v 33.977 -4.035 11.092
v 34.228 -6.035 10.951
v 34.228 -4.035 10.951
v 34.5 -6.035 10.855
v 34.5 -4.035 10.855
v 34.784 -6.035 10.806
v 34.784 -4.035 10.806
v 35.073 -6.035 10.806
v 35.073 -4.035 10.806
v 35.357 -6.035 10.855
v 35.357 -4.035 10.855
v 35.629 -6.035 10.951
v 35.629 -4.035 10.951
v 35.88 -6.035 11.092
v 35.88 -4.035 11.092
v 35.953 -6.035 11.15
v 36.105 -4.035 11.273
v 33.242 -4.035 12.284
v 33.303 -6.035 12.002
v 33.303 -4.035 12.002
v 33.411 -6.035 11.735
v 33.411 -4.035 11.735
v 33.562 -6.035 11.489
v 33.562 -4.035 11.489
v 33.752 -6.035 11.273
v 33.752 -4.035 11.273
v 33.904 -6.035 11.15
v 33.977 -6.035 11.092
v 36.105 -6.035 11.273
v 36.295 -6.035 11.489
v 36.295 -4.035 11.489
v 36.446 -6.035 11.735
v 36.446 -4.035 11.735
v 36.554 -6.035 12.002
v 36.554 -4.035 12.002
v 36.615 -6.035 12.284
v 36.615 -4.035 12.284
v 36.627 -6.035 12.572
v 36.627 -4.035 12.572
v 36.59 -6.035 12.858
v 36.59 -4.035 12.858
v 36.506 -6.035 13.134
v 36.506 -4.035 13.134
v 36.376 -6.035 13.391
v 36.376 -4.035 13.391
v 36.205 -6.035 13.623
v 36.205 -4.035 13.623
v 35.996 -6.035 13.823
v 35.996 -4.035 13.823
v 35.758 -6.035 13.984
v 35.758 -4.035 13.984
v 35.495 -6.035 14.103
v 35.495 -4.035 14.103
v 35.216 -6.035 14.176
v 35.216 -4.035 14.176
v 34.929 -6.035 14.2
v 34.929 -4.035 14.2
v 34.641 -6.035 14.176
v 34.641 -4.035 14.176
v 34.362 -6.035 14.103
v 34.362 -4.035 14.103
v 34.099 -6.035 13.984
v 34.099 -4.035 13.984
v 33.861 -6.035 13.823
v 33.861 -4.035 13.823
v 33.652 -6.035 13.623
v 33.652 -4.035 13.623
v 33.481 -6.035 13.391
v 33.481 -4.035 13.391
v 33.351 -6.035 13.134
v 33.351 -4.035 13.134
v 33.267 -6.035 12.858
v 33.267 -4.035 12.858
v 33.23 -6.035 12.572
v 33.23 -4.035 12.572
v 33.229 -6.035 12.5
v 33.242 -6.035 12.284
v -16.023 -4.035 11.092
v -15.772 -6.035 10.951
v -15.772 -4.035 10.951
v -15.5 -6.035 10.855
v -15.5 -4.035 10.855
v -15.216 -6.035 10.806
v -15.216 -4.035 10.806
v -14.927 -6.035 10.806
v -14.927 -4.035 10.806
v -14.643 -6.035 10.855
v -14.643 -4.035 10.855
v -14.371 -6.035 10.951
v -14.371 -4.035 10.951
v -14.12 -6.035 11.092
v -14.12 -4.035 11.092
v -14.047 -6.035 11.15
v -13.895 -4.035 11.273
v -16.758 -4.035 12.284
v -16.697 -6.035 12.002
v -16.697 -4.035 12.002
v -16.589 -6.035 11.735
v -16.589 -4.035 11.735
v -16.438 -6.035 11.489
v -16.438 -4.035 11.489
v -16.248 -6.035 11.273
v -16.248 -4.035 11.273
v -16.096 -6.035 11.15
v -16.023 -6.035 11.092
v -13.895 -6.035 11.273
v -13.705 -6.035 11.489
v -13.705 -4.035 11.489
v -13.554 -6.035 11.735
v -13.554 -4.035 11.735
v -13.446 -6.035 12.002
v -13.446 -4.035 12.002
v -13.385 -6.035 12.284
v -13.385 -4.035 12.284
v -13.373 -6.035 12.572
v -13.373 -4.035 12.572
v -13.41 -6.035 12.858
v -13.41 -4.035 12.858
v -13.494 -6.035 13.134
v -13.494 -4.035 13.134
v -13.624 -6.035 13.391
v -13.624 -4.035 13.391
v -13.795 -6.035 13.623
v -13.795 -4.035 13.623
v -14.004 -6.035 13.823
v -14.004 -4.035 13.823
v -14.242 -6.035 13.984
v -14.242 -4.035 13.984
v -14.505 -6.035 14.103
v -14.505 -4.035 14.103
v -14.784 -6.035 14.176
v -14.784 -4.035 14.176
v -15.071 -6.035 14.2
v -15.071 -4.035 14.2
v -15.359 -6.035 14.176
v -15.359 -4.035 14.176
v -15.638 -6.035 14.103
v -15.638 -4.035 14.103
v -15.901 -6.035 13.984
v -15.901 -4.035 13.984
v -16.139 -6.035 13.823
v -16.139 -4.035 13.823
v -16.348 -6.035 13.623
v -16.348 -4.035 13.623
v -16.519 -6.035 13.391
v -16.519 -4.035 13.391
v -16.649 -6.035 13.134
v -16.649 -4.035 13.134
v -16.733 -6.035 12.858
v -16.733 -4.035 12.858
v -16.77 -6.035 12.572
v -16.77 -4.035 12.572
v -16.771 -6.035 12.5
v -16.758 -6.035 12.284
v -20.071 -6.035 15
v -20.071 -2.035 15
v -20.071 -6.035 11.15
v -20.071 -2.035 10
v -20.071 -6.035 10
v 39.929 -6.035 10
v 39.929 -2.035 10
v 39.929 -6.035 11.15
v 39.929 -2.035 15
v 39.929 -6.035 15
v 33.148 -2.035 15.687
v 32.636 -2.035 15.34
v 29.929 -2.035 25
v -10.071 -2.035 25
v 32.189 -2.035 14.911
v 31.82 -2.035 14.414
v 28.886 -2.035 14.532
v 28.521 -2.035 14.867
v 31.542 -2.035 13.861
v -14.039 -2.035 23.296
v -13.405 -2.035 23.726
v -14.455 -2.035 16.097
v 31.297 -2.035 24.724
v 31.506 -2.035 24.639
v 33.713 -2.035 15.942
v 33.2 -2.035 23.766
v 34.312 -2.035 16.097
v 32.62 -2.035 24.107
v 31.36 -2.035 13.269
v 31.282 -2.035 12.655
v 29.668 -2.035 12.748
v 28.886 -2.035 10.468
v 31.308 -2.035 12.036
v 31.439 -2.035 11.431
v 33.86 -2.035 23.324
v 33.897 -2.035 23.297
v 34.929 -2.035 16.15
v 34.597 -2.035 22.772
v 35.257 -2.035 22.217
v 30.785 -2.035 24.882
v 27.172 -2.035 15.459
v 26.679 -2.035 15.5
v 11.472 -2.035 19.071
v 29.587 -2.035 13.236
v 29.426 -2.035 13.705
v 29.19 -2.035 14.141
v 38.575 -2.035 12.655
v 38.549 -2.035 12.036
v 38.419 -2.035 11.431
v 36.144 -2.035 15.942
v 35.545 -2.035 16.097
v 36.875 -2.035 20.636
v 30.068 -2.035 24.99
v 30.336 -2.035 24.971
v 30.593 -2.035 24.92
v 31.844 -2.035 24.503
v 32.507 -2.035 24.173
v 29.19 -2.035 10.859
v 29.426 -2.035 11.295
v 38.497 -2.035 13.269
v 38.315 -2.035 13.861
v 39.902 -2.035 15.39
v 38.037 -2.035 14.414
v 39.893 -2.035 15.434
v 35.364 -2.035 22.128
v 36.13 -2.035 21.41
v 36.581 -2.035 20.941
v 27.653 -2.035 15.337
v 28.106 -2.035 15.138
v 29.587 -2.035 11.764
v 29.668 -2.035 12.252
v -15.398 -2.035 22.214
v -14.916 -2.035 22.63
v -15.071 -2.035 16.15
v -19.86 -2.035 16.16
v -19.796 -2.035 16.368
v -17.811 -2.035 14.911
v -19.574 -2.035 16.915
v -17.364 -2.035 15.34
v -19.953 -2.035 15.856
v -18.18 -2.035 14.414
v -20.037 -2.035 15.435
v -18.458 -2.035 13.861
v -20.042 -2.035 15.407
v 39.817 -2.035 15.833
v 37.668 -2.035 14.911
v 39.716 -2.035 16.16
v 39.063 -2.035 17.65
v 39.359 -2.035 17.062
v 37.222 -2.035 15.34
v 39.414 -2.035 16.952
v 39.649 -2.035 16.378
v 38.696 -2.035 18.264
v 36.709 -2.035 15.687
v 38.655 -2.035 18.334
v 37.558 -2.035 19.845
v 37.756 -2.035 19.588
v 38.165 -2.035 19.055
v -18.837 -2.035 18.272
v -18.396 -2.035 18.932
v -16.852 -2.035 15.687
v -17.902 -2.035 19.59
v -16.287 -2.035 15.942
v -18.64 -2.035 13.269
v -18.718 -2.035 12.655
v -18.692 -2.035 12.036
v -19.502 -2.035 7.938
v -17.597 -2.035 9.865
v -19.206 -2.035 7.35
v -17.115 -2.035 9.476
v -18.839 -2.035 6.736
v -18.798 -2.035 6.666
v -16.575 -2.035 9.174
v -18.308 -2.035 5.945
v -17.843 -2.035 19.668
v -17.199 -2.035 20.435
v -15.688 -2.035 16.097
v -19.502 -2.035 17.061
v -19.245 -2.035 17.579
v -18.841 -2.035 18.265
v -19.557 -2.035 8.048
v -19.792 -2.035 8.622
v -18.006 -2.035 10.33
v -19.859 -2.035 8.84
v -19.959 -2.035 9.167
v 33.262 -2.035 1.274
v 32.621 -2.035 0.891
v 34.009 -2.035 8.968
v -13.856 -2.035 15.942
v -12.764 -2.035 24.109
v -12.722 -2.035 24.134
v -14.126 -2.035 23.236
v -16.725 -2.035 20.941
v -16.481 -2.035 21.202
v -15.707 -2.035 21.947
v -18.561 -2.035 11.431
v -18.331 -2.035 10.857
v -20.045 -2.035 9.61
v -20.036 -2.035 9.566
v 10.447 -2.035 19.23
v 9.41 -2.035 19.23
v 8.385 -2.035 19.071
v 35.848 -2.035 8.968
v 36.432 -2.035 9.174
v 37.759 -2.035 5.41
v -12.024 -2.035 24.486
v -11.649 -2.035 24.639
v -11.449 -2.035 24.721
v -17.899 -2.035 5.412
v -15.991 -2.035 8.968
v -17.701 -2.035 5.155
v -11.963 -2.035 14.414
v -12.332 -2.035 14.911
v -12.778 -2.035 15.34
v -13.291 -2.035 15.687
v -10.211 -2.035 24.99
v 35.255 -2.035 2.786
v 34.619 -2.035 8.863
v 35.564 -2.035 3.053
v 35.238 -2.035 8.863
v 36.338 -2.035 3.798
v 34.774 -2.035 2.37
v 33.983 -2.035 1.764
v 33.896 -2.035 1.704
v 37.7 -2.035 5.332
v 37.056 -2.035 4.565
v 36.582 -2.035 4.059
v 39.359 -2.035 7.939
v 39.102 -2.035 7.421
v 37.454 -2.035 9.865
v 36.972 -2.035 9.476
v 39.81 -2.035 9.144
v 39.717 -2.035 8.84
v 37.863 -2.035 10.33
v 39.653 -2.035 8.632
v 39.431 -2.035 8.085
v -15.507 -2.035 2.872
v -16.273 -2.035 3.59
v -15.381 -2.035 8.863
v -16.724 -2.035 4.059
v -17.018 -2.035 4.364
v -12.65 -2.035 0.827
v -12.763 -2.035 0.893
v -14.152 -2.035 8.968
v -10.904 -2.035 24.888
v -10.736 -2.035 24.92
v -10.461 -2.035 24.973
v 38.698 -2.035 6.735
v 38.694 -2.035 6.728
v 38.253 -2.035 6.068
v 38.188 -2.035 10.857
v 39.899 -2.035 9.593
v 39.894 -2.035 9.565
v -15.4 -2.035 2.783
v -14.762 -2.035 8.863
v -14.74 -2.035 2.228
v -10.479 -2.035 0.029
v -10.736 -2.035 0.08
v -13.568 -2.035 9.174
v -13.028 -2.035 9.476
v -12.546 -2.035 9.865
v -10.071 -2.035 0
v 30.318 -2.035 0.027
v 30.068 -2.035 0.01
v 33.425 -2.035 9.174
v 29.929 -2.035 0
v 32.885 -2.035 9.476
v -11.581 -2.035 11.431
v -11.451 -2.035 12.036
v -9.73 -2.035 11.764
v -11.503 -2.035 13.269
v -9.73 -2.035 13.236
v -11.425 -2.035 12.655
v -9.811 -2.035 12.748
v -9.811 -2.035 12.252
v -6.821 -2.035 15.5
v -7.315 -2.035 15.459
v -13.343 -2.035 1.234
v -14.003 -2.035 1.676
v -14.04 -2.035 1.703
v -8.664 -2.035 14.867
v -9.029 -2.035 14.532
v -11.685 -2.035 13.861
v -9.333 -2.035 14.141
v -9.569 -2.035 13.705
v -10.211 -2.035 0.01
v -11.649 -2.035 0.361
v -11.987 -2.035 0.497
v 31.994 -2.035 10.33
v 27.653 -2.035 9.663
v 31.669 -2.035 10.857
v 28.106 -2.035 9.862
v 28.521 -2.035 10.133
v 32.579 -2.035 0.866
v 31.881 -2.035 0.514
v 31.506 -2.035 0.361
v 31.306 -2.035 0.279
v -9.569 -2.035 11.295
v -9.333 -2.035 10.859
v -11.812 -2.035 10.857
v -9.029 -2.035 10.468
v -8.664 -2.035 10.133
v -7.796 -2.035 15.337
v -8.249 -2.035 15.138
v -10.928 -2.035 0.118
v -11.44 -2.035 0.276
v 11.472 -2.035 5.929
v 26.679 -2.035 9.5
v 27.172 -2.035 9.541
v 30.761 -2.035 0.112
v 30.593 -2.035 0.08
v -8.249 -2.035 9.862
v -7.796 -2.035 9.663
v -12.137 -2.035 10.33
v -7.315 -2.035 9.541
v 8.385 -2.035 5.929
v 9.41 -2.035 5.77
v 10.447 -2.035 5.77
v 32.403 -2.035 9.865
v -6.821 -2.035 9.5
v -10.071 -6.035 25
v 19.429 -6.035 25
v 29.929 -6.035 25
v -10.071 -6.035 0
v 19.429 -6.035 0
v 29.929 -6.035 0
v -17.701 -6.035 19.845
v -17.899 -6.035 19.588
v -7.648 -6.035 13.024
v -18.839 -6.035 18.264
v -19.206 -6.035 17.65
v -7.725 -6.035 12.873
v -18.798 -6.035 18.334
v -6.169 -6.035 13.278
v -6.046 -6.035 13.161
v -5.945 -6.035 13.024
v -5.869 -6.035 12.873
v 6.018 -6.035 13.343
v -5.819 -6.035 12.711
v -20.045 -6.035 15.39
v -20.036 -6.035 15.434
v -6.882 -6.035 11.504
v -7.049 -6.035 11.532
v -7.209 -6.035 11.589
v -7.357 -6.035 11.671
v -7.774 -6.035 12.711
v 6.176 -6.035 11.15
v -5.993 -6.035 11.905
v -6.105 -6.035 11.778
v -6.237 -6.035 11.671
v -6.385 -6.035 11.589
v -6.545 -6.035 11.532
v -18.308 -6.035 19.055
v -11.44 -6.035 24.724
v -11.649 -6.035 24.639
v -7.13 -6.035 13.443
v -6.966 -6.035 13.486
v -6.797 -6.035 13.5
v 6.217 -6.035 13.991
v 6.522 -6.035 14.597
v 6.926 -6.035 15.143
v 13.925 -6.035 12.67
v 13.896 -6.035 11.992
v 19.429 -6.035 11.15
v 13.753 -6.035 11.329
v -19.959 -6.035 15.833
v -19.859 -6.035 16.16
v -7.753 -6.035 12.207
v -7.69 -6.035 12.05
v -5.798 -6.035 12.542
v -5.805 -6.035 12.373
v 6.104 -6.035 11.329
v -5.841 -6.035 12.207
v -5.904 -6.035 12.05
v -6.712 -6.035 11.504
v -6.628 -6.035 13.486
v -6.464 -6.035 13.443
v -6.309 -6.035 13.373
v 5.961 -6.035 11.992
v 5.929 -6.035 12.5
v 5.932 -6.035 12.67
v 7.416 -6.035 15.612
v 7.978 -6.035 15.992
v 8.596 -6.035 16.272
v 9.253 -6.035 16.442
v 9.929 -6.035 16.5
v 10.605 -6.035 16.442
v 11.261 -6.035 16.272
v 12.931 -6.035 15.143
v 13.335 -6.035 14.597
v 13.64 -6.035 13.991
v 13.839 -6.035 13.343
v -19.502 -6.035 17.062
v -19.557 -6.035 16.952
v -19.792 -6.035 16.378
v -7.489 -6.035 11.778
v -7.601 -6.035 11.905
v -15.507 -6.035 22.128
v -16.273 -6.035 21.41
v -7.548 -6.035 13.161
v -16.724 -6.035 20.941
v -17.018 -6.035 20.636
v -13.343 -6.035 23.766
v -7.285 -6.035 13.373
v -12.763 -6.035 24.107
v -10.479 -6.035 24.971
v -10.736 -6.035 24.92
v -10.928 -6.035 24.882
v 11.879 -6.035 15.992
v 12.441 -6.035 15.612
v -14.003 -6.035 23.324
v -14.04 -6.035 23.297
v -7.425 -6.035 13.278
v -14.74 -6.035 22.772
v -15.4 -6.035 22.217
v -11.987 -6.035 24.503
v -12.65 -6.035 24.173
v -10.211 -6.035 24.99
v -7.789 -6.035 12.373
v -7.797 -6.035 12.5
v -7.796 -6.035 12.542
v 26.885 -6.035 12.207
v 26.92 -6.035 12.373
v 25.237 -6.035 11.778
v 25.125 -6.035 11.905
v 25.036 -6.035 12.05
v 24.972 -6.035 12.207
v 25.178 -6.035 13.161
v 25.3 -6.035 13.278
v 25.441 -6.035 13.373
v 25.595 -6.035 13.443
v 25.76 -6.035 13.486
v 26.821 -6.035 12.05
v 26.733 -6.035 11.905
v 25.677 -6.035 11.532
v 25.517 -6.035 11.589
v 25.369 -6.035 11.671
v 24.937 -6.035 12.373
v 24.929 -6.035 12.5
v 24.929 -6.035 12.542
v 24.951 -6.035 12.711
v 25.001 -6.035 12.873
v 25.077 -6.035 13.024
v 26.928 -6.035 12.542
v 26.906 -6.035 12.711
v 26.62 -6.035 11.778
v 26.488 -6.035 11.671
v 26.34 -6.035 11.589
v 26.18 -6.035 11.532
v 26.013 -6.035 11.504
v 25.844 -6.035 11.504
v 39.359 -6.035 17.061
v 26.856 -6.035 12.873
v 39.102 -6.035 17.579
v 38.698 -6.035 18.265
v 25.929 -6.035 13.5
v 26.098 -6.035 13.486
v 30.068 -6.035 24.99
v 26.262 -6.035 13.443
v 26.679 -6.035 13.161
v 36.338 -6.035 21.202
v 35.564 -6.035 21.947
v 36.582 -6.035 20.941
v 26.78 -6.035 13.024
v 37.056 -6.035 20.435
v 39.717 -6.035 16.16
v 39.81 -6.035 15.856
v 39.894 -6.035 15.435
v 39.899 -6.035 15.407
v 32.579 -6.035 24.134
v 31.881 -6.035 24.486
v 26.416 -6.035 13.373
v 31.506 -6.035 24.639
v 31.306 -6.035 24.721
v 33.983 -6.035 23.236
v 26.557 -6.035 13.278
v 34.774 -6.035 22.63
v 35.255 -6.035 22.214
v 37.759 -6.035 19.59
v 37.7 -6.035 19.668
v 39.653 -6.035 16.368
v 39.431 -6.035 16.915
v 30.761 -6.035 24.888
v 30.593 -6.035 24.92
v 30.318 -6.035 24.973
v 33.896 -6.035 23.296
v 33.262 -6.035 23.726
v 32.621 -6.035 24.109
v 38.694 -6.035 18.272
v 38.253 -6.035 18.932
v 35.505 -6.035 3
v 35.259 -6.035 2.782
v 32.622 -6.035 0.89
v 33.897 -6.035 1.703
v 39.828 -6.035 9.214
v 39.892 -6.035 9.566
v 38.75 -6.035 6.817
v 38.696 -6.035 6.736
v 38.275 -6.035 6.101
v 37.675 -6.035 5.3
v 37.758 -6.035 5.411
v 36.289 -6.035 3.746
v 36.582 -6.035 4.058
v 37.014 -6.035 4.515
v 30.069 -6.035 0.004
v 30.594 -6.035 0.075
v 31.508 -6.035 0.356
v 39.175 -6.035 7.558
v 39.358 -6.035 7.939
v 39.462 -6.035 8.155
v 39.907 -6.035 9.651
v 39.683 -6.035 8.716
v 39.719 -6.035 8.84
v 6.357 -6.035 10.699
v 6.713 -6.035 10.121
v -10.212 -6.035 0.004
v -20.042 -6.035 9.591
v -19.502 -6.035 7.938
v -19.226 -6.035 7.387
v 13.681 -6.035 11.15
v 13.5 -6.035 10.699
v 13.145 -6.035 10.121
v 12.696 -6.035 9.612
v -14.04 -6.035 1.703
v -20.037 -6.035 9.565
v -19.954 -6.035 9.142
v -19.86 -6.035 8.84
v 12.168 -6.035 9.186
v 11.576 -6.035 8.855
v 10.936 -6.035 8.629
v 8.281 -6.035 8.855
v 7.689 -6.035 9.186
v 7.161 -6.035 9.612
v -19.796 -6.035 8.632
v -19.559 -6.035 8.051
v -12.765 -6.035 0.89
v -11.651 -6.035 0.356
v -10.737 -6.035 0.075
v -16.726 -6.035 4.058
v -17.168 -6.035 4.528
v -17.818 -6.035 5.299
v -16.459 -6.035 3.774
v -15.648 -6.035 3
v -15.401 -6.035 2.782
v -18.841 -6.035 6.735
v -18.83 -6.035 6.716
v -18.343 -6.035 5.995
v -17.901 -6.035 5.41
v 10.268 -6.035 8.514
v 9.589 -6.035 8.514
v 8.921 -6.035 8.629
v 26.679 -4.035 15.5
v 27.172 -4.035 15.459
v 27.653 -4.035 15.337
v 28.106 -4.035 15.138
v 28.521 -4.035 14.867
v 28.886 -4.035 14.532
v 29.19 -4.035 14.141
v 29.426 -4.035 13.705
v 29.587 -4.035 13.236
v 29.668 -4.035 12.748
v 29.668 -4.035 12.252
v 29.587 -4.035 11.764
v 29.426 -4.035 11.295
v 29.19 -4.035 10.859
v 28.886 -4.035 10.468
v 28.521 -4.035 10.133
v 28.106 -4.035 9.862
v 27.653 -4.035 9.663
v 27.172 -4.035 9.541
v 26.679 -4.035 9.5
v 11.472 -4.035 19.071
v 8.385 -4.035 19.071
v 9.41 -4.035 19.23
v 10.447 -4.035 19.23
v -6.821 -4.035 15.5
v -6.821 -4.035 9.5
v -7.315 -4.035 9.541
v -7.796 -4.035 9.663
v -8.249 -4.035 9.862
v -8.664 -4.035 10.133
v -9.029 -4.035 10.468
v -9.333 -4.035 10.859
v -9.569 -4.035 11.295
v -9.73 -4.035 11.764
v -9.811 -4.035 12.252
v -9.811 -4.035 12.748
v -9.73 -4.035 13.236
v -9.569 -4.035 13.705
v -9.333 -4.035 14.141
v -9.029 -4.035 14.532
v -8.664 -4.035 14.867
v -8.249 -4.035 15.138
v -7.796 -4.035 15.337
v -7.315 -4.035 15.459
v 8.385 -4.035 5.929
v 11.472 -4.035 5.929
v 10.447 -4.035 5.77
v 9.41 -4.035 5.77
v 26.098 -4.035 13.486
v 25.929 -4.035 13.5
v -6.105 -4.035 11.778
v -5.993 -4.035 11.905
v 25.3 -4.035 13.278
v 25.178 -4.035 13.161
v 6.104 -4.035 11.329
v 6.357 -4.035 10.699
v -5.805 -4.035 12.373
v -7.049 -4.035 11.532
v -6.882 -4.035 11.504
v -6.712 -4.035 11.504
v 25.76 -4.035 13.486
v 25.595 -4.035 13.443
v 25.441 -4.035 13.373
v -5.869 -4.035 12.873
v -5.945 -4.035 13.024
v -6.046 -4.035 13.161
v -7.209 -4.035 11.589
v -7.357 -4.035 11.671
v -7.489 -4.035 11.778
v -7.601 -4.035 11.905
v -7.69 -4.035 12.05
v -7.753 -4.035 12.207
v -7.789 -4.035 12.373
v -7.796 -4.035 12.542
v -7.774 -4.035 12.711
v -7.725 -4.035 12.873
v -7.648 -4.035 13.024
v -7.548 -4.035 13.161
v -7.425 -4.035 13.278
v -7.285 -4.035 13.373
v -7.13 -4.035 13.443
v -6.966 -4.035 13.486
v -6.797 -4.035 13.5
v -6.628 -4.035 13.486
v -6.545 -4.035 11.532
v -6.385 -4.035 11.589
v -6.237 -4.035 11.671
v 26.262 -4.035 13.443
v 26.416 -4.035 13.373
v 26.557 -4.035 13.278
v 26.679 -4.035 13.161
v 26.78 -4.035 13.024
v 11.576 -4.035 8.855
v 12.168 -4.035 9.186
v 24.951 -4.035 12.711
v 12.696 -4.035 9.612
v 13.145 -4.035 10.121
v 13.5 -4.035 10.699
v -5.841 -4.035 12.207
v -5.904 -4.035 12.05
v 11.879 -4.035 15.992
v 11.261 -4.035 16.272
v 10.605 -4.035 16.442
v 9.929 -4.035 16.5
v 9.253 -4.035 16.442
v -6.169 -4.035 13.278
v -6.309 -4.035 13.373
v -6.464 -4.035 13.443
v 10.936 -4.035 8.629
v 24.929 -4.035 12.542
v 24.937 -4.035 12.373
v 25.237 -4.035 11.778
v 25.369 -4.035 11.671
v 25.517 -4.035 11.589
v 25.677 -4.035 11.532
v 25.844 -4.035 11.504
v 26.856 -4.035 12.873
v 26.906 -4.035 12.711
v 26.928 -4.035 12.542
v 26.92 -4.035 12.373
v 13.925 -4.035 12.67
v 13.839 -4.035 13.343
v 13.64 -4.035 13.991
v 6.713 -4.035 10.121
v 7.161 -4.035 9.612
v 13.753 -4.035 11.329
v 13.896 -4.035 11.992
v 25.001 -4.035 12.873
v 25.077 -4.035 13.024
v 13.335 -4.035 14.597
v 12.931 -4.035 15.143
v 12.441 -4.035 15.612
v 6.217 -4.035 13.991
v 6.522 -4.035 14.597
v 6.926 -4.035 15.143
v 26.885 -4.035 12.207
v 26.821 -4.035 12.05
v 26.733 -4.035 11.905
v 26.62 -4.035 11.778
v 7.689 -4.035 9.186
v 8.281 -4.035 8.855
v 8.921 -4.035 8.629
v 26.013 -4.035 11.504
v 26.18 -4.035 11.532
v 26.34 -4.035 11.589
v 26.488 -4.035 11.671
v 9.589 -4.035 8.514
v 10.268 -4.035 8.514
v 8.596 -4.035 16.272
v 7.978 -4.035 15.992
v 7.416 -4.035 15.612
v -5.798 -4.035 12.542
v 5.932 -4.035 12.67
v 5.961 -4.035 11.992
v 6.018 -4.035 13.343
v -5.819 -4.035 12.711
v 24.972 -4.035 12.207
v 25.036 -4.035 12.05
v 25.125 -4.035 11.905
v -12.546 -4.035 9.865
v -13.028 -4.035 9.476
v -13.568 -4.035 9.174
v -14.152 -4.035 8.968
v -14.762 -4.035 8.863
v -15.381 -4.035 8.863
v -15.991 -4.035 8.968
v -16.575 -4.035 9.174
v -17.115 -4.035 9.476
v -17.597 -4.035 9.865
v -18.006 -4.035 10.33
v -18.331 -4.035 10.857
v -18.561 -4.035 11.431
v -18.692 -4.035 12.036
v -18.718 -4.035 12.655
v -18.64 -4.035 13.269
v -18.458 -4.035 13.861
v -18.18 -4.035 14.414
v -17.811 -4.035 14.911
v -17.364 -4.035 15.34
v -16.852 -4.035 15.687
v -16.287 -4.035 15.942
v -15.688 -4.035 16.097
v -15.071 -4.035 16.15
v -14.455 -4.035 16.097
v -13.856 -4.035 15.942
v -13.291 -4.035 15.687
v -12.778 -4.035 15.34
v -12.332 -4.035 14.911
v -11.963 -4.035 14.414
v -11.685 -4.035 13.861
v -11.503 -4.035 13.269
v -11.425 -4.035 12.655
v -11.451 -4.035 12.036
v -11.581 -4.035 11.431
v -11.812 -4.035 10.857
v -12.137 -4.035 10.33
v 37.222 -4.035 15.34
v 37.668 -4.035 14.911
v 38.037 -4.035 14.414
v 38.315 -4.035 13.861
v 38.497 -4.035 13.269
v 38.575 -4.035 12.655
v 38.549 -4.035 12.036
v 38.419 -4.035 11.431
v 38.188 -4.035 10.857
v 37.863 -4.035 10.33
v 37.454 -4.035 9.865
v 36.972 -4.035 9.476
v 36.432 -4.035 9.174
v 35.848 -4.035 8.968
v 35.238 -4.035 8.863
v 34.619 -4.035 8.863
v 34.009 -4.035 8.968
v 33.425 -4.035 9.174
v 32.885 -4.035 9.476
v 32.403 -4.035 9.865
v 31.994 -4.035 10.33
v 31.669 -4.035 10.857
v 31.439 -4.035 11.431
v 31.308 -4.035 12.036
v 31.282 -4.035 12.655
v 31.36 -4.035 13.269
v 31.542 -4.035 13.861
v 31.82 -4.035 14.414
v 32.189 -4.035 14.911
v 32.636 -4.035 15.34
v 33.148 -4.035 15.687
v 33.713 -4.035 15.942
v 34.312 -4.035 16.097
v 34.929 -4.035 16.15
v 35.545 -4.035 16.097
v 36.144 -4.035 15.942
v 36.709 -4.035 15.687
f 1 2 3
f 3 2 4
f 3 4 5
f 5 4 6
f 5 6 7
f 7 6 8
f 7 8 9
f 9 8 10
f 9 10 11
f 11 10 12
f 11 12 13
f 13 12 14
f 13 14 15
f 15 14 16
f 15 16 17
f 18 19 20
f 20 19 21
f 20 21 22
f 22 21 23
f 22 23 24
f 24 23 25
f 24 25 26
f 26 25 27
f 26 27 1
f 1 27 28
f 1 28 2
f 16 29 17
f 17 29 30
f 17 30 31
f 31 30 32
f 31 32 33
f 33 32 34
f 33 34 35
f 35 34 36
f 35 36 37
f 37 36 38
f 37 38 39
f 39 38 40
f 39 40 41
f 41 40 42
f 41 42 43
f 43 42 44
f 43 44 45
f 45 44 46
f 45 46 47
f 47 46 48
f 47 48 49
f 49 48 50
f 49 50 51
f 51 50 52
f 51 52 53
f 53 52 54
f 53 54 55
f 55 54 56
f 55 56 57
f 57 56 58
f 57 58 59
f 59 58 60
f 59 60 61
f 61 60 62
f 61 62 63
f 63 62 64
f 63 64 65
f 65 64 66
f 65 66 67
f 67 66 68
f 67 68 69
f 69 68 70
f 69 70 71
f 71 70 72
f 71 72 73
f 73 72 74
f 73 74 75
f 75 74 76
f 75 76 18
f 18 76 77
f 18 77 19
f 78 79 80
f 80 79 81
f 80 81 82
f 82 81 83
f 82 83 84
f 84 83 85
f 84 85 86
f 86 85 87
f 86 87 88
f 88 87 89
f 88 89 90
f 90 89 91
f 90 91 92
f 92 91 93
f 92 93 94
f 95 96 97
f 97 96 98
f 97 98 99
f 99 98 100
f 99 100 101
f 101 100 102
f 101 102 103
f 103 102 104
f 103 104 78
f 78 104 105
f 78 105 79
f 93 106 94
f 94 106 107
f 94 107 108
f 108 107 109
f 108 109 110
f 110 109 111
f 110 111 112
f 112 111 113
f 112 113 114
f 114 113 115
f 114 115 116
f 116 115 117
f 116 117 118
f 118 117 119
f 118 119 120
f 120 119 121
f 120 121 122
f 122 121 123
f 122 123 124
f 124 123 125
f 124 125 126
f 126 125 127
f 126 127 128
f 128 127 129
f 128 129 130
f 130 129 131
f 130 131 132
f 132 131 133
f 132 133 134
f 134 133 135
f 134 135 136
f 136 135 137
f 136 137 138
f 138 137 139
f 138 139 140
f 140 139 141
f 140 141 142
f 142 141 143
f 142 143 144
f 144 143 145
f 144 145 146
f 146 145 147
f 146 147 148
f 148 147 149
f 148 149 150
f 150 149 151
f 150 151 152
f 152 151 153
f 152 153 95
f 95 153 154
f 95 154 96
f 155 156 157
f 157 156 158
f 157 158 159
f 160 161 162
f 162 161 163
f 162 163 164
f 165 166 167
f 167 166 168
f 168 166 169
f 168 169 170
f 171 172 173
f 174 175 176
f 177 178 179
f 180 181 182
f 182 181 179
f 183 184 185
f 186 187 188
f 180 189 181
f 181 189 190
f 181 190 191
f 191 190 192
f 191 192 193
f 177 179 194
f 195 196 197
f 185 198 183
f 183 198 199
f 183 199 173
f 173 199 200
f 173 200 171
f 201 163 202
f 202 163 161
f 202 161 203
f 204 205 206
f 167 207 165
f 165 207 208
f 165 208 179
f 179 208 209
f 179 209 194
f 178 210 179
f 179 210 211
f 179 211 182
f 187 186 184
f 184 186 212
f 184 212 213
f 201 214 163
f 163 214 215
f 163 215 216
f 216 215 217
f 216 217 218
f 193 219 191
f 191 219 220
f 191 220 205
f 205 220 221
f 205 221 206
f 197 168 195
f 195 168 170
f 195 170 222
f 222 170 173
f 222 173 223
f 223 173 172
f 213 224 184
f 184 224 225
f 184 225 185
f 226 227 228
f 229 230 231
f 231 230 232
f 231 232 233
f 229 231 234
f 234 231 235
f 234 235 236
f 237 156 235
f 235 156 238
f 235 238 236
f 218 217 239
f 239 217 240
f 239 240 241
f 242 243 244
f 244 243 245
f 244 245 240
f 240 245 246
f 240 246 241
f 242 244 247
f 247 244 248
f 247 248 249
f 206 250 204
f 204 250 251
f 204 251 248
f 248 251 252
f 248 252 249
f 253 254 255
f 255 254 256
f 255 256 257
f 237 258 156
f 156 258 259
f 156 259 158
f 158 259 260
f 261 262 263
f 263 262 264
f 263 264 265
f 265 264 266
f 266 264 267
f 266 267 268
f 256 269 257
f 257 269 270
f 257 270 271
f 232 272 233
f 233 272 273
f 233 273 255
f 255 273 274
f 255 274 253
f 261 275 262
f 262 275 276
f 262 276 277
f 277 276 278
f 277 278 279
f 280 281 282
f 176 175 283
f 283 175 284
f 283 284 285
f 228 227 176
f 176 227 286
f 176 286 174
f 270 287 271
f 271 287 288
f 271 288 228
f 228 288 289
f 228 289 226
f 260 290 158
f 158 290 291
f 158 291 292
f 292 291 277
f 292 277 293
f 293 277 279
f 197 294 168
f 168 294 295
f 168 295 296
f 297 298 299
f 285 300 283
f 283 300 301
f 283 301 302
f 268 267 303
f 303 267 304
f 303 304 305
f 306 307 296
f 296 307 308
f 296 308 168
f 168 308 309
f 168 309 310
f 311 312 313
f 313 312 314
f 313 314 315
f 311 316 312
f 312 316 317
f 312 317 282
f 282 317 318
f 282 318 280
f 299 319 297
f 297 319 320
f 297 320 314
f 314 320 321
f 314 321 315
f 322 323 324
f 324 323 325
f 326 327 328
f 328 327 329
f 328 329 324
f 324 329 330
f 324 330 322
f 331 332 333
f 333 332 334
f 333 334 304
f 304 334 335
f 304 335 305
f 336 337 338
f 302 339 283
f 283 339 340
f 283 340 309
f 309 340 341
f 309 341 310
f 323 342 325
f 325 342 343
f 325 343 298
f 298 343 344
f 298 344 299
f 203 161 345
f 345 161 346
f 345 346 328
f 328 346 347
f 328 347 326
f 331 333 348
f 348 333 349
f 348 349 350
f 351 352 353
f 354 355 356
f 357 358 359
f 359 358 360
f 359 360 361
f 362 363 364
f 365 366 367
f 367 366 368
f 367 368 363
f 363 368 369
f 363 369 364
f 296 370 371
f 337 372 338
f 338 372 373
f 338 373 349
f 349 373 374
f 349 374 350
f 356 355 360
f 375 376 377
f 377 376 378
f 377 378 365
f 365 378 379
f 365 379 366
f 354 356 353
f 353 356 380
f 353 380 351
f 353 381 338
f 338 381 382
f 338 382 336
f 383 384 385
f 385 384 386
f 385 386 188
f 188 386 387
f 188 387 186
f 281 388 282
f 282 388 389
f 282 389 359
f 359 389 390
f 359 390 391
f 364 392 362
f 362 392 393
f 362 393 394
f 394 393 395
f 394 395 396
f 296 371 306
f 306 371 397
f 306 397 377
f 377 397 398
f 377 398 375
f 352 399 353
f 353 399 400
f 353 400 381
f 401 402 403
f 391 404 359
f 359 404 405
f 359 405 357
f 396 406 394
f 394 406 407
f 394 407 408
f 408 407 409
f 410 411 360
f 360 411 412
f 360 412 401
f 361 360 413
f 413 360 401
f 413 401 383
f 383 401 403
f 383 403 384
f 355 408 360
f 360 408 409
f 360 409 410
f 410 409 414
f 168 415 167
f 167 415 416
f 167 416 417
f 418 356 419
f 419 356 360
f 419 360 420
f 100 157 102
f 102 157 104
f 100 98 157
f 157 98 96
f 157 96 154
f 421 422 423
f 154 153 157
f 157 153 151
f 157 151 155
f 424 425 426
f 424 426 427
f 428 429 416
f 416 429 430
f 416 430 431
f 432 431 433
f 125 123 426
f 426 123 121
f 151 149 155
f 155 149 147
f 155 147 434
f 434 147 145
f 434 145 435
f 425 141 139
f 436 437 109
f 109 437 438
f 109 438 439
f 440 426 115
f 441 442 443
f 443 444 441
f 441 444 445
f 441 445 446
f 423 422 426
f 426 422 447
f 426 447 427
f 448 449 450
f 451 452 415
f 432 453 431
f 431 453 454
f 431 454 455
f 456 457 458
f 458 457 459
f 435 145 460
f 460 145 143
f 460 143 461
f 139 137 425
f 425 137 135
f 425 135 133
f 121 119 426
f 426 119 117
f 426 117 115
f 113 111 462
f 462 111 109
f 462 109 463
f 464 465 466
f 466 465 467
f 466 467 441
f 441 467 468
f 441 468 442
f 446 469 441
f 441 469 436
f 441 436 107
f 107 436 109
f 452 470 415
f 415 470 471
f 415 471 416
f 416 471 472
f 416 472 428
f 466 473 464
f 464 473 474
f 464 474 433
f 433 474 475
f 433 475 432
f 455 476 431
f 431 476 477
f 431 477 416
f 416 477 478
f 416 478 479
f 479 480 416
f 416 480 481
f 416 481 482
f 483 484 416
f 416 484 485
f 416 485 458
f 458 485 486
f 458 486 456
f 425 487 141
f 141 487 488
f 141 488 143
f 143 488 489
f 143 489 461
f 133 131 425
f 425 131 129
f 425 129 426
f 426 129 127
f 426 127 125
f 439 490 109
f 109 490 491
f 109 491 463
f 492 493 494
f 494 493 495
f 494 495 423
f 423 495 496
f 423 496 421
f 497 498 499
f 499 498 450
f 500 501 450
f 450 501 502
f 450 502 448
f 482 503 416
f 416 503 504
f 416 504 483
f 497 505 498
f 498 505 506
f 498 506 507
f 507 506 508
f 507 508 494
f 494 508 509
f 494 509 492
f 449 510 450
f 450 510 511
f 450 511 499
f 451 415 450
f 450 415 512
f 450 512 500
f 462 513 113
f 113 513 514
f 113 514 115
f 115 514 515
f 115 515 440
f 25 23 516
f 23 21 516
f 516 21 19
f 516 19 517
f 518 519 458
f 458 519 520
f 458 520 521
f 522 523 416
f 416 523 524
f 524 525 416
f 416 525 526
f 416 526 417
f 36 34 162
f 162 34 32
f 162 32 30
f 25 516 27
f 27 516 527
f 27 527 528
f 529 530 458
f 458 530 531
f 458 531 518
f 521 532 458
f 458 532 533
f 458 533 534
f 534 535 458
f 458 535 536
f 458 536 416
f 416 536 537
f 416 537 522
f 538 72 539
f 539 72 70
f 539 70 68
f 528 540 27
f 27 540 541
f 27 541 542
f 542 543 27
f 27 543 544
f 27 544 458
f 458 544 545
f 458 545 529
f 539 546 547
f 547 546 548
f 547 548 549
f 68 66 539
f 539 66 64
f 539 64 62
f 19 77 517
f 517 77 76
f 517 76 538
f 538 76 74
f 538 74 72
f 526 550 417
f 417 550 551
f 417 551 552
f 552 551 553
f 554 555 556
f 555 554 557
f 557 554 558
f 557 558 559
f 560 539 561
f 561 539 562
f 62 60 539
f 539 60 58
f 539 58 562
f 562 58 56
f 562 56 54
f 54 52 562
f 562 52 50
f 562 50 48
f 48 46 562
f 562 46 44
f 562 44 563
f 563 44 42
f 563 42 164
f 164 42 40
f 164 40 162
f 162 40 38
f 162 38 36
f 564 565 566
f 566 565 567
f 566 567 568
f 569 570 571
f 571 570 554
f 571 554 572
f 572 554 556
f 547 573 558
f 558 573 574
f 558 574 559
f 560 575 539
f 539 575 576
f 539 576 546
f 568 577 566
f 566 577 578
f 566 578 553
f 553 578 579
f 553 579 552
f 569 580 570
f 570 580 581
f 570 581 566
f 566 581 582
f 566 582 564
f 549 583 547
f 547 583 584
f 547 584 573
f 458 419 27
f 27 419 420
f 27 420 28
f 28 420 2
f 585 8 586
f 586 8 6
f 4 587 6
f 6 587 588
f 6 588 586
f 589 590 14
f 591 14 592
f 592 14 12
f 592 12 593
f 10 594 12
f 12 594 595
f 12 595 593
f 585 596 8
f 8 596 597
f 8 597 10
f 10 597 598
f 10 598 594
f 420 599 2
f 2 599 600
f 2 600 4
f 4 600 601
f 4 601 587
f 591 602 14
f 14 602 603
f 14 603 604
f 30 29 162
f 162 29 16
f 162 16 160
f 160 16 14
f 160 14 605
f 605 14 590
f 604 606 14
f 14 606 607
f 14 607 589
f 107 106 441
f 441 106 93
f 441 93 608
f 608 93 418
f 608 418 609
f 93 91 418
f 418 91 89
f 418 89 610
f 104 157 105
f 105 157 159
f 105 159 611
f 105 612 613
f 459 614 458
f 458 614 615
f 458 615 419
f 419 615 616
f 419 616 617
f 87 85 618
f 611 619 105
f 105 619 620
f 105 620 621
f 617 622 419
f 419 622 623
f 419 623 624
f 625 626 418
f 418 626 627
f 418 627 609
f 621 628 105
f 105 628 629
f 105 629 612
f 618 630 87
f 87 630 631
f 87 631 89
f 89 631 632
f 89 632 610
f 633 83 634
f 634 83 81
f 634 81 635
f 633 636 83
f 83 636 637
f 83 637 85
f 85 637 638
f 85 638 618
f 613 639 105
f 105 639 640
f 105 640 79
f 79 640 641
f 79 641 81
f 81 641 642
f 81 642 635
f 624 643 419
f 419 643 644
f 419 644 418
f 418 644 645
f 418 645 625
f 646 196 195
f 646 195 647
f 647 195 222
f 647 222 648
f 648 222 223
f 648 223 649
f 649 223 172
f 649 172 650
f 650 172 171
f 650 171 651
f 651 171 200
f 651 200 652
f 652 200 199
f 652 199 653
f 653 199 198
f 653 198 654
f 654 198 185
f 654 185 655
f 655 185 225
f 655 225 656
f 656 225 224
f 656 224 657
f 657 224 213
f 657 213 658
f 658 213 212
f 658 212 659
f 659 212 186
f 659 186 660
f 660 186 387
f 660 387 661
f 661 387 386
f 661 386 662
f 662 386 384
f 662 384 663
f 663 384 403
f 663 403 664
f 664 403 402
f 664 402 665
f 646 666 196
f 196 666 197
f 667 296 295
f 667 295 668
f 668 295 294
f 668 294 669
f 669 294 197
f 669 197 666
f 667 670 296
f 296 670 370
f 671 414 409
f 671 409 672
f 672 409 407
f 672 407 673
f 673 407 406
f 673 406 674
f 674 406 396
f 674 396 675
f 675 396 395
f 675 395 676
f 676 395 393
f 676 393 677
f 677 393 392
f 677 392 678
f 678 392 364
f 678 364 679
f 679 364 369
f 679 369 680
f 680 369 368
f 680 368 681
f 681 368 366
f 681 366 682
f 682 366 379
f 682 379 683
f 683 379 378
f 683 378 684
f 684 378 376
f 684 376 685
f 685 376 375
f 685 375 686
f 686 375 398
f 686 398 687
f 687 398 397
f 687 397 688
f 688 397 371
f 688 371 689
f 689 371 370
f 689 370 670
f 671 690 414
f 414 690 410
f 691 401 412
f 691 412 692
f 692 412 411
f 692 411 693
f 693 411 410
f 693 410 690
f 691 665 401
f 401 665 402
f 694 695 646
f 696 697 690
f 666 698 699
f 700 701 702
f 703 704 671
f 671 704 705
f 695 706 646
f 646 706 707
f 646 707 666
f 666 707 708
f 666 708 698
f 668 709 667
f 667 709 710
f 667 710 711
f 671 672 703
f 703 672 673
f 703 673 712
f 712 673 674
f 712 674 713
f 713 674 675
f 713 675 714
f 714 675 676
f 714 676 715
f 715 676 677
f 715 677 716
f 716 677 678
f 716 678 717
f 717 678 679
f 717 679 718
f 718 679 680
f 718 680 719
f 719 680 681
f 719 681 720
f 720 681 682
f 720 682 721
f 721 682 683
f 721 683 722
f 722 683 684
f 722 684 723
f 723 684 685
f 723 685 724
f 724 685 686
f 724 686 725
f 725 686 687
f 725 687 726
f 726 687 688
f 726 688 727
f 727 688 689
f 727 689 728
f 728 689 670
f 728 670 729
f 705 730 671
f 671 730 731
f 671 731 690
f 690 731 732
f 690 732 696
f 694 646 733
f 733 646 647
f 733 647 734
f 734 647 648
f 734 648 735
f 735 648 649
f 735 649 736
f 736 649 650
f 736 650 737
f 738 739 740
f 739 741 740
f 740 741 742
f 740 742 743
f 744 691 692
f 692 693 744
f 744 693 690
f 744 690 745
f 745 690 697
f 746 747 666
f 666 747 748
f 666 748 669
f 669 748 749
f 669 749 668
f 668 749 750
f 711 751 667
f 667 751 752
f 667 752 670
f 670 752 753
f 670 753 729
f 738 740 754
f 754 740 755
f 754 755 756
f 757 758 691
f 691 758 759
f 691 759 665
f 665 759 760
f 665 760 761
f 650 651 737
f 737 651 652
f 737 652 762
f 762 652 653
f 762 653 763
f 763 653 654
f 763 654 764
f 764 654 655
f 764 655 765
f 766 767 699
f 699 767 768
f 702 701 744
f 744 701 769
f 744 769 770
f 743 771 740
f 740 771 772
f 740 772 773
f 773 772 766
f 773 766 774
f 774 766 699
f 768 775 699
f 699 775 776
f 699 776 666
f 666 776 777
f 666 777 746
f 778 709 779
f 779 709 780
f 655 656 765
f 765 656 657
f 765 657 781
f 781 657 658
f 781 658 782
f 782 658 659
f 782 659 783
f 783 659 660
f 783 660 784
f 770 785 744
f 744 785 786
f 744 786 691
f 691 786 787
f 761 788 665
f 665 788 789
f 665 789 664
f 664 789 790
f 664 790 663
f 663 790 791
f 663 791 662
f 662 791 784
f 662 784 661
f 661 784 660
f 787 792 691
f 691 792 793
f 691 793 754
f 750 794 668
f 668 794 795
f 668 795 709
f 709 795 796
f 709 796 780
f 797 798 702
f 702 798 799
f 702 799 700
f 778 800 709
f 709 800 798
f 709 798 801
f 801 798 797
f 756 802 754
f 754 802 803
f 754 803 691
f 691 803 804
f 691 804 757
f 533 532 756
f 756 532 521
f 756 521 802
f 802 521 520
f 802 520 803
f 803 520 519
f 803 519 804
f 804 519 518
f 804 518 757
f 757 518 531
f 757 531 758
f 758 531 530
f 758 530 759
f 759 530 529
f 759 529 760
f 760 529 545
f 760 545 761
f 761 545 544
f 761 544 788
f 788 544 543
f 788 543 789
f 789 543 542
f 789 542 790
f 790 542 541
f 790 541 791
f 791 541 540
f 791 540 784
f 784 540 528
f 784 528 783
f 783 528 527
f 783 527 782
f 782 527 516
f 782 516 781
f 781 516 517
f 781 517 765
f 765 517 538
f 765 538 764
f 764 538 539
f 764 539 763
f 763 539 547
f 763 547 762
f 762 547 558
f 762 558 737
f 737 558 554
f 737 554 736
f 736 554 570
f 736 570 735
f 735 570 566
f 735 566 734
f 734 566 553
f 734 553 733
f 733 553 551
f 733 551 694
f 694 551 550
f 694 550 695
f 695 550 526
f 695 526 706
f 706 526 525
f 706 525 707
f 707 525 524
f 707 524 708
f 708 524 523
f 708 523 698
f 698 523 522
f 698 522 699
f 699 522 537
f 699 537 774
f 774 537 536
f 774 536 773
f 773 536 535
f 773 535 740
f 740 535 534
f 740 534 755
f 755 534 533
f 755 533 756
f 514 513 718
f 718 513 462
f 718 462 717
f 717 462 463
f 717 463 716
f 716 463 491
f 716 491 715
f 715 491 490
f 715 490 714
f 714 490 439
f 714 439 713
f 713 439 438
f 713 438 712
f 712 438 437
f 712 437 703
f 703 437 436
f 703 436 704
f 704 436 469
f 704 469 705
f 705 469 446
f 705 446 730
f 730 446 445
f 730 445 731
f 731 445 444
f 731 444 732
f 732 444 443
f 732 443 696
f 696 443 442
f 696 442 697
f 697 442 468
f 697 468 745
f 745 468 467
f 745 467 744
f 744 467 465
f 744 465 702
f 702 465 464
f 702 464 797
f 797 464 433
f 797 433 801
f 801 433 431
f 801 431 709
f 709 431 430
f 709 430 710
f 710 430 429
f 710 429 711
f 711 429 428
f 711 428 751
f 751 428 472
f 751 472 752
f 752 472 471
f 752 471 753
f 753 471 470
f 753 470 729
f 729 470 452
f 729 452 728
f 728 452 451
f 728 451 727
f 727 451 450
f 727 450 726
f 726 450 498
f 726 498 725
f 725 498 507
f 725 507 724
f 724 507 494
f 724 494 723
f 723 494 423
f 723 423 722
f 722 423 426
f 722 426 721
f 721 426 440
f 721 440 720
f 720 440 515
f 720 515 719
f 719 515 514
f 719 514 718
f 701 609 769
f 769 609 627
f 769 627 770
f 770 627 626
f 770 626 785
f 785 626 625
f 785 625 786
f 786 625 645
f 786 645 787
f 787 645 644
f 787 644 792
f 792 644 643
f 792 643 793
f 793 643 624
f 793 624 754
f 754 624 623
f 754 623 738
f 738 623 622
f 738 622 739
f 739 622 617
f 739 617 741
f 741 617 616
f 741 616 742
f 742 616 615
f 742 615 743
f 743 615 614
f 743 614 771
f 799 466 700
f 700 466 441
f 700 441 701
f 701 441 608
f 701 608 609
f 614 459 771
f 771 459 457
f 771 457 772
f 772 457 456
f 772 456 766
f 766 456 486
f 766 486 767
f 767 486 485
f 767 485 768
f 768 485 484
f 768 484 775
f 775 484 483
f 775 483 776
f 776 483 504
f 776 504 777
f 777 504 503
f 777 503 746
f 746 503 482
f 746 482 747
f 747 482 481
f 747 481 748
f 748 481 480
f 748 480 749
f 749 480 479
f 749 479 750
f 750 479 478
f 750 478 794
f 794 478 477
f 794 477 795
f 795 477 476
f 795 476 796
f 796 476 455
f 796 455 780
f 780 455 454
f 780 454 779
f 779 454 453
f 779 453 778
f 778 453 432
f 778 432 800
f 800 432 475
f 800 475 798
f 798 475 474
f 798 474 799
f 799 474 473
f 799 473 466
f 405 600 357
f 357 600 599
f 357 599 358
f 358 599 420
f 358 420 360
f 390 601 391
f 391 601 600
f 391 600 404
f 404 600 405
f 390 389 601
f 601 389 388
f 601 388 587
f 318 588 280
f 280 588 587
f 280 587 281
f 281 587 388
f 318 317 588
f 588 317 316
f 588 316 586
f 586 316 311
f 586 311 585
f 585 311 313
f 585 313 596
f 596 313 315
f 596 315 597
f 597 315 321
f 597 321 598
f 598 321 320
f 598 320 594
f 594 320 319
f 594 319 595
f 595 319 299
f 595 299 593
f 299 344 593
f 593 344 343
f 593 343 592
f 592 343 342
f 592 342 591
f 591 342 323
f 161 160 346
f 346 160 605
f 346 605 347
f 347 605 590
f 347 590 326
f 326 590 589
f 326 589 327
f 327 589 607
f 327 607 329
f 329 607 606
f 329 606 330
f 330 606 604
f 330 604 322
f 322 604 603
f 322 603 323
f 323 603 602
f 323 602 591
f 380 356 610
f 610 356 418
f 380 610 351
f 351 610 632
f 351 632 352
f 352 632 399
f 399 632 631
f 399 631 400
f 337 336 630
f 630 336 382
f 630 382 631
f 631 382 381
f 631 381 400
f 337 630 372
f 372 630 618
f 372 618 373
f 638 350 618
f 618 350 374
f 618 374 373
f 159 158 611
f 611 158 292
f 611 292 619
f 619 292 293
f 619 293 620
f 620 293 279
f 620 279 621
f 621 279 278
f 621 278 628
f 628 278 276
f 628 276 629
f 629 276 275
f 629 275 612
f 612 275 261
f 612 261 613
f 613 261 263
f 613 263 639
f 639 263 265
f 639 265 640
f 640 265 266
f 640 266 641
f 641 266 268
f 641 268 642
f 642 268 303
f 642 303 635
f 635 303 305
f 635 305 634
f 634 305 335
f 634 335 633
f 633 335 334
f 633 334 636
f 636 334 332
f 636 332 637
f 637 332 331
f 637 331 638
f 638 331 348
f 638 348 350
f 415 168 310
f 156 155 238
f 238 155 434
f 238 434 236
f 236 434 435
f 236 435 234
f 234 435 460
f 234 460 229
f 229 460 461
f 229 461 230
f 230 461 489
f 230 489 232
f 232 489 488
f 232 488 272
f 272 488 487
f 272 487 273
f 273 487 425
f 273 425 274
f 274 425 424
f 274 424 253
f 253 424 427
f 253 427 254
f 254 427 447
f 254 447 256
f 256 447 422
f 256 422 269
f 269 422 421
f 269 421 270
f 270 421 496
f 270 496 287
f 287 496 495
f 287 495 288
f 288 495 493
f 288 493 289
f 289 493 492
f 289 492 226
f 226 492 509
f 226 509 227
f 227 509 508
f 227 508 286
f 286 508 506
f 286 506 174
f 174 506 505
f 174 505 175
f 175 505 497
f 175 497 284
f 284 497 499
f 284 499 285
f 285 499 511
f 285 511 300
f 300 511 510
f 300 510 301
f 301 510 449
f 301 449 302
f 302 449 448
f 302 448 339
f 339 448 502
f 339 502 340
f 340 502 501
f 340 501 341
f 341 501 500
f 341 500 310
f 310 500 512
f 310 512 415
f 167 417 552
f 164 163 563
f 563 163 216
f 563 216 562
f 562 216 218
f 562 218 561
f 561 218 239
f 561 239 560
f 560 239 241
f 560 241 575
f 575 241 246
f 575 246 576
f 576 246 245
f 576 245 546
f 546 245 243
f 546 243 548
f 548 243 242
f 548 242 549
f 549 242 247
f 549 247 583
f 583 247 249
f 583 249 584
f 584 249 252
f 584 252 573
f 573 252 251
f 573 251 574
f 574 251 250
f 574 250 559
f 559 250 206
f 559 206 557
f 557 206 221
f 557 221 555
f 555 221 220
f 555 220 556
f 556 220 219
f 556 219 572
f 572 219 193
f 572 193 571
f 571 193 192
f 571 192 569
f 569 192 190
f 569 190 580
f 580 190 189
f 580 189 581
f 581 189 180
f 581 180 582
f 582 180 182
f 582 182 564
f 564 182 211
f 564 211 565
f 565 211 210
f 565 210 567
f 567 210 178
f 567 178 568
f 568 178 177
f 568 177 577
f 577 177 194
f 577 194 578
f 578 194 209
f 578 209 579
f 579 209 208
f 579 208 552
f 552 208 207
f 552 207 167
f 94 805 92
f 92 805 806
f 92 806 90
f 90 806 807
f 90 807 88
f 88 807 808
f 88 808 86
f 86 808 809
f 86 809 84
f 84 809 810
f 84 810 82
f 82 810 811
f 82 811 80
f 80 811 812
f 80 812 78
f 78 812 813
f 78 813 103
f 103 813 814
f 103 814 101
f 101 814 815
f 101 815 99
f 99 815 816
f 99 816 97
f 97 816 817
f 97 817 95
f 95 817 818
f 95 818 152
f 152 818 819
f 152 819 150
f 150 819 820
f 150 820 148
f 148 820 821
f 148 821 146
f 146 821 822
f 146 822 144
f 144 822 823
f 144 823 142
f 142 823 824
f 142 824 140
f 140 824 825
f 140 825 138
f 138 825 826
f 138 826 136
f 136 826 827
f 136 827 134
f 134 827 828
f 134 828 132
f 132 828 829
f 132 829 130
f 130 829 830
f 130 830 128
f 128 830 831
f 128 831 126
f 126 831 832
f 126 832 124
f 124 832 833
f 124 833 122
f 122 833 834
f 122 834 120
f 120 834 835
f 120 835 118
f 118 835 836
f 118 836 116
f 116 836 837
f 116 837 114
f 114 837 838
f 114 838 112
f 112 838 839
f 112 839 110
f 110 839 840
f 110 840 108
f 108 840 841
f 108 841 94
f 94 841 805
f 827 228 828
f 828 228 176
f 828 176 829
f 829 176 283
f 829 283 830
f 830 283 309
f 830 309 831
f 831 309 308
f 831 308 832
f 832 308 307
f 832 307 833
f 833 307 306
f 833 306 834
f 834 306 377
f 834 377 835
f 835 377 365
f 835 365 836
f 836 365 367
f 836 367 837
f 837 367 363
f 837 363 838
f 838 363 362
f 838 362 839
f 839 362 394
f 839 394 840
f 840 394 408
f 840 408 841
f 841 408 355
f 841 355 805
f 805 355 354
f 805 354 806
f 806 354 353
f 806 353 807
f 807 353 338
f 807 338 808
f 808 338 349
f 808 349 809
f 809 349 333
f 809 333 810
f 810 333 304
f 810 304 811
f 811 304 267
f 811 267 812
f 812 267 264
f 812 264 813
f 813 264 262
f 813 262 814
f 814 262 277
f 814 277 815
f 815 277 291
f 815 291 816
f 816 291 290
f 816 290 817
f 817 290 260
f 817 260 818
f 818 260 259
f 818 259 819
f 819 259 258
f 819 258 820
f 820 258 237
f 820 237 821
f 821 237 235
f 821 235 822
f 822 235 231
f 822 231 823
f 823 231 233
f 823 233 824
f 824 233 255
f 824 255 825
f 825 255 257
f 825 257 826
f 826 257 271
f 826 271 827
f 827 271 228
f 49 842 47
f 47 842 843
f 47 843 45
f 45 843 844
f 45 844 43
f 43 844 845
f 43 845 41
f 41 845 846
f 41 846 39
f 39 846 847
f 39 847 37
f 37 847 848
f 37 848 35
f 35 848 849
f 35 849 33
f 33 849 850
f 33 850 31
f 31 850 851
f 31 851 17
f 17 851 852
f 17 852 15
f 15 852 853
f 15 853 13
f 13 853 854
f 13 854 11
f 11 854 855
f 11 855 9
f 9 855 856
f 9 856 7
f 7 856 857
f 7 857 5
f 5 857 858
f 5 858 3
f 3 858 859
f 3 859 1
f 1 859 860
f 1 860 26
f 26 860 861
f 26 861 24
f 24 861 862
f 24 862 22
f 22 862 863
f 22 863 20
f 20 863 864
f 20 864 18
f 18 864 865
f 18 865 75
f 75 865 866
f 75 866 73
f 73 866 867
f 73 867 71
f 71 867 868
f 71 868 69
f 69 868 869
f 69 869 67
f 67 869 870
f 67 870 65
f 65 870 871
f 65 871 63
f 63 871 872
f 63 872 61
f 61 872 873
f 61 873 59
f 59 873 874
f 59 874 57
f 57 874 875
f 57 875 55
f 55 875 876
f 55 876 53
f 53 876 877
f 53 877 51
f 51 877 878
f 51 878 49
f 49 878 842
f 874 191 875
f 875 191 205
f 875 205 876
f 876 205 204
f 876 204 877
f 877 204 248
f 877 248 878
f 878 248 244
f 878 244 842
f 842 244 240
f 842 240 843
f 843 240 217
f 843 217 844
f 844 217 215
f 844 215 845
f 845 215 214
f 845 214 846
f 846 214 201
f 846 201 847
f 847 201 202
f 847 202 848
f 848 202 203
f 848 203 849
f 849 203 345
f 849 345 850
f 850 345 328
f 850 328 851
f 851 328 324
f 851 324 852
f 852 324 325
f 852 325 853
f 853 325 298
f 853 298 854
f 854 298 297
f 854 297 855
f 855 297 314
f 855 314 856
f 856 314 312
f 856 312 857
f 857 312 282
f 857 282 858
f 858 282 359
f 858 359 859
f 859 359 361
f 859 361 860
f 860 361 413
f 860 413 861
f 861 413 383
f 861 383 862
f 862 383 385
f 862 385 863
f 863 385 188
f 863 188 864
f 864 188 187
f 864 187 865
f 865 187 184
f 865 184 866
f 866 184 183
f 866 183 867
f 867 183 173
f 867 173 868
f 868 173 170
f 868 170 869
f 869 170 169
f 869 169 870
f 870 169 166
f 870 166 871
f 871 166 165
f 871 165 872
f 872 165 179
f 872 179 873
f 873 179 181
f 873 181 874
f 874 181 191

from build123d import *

# Parameters (mm, degrees)
SKETCH1_W           = 60
SKETCH1_H           = 8
BOSS_EXTRUDE1_DEPTH = 25
SKETCH2_W           = 60
SKETCH2_H           = 2
CUT_EXTRUDE1_DEPTH  = 22
CUT_EXTRUDE2_DEPTH  = 2
SKETCH4_R           = 1
SKETCH4_R_2         = 4
CUT_EXTRUDE3_DEPTH  = 2.5
SKETCH5_R           = 1.7
CUT_EXTRUDE4_DEPTH  = 9
FILLET2_SIZE        = 10
SKETCH6_R           = 3
CUT_EXTRUDE5_DEPTH  = 4.5
CUT_EXTRUDE6_DEPTH  = 1
SKETCH8_R           = 3.65
CUT_EXTRUDE7_DEPTH  = 2
SKETCH10_W          = 50
SKETCH10_H          = 4
CUT_EXTRUDE8_DEPTH  = 61


with BuildPart() as part:
    # Sketch1 → Boss-Extrude1 (new body)
    with BuildSketch(Plane.XY):
        with Locations((9.92851316, -6.03519833)):
            Rectangle(SKETCH1_W, SKETCH1_H)
    extrude(amount=BOSS_EXTRUDE1_DEPTH)

    # Sketch2 → Cut-Extrude1 (cut)
    with BuildSketch(Plane.XY.offset(25)):
        with Locations((9.92851316, -7.03519833)):
            Rectangle(SKETCH2_W, SKETCH2_H)
    extrude(amount=-CUT_EXTRUDE1_DEPTH, mode=Mode.SUBTRACT)

    # Sketch3 → Cut-Extrude2 (cut)
    with BuildSketch(Plane(origin=(0, -2.03519833, 0), x_dir=(1, 0, 0), z_dir=(0, 1, 0))):
        with BuildLine():
            Line((26.67851316, -9.5), (11.471726674, -5.928775453))
            ThreePointArc((11.471726674, -5.928775453), (9.92851316, -5.75), (8.385299646, -5.928775453))
            Line((8.385299646, -5.928775453), (-6.82148684, -9.5))
            ThreePointArc((-6.82148684, -9.5), (-9.821486841, -12.5), (-6.82148684, -15.5))
            Line((-6.82148684, -15.5), (8.385299646, -19.071224547))
            ThreePointArc((8.385299646, -19.071224547), (9.92851316, -19.25), (11.471726674, -19.071224547))
            Line((11.471726674, -19.071224547), (26.67851316, -15.5))
            ThreePointArc((26.67851316, -15.5), (29.67851316, -12.5), (26.67851316, -9.5))
        make_face()
    extrude(amount=-CUT_EXTRUDE2_DEPTH, mode=Mode.SUBTRACT)

    # Sketch4 → Cut-Extrude3 (cut)
    with BuildSketch(Plane(origin=(0, -4.03519833, 0), x_dir=(1, 0, 0), z_dir=(0, 1, 0))):
        with Locations(Location((-6.796927173, -12.5, 0), (0, 0, 270))):
            Circle(SKETCH4_R)
        with Locations(Location((9.92851316, -12.5, 0), (0, 0, 270))):
            Circle(SKETCH4_R_2)
        with Locations(Location((25.92851316, -12.5, 0), (0, 0, 270))):
            Circle(SKETCH4_R)
    extrude(amount=-CUT_EXTRUDE3_DEPTH, mode=Mode.SUBTRACT)

    # Sketch5 → Cut-Extrude4 (cut)
    with BuildSketch(Plane(origin=(0, -2.03519833, 0), x_dir=(1, 0, 0), z_dir=(0, 1, 0))):
        with Locations(Location((34.92851316, -12.5, 0), (0, 0, 270))):
            Circle(SKETCH5_R)
        with Locations(Location((-15.07148684, -12.5, 0), (0, 0, 270))):
            Circle(SKETCH5_R)
    extrude(amount=-CUT_EXTRUDE4_DEPTH, mode=Mode.SUBTRACT)

    # Fillet2
    # a fillet whose section is not a circle: 10 mm, written as the material it takes off along each edge
    with BuildSketch(Plane(origin=(-20.07148684, -31.03519833, 25), x_dir=(0, 0, -1), z_dir=(0, 1, 0))) as fillet2_piece_1:
        with BuildLine():
            Bezier((FILLET2_SIZE, 0), (0, 0), (0, -FILLET2_SIZE), weights=[1, 0.353553391, 1])
            Line((0, -FILLET2_SIZE), (0, 0))
            Line((0, 0), (FILLET2_SIZE, 0))
        make_face()
    extrude(amount=54, mode=Mode.SUBTRACT)
    with BuildSketch(Plane(origin=(-20.07148684, -35.03519833, 25), x_dir=(0, 0, -1), z_dir=(0, 1, 0)), Plane(origin=(39.92851316, 16.96480167, 25), x_dir=(0, 0, -1), z_dir=(0, -1, 0))) as fillet2_piece_2:
        with BuildLine():
            Bezier((FILLET2_SIZE, 0), (0, 0), (0, -FILLET2_SIZE), weights=[1, 0.353553391, 1])
            Line((0, -FILLET2_SIZE), (0, 0))
            Line((0, 0), (FILLET2_SIZE, 0))
        make_face()
    extrude(amount=52, mode=Mode.SUBTRACT)
    with BuildSketch(Plane(origin=(39.92851316, 22.96480167, 25), x_dir=(-1, 0, 0), z_dir=(0, -1, 0))) as fillet2_piece_3:
        with BuildLine():
            Bezier((FILLET2_SIZE, 0), (0, 0), (0, FILLET2_SIZE), weights=[1, 0.353553391, 1])
            Line((0, FILLET2_SIZE), (0, 0))
            Line((0, 0), (FILLET2_SIZE, 0))
        make_face()
    extrude(amount=54, mode=Mode.SUBTRACT)
    with BuildSketch(Plane(origin=(39.92851316, 22.96480167, 0), x_dir=(-1, 0, 0), z_dir=(0, -1, 0))) as fillet2_piece_4:
        with BuildLine():
            Bezier((FILLET2_SIZE, 0), (0, 0), (0, -FILLET2_SIZE), weights=[1, 0.353553391, 1])
            Line((0, -FILLET2_SIZE), (0, 0))
            Line((0, 0), (FILLET2_SIZE, 0))
        make_face()
    extrude(amount=58, mode=Mode.SUBTRACT)
    with BuildSketch(Plane(origin=(-20.07148684, -35.03519833, 0), x_dir=(0, 0, 1), z_dir=(0, 1, 0))) as fillet2_piece_5:
        with BuildLine():
            Bezier((FILLET2_SIZE, 0), (0, 0), (0, FILLET2_SIZE), weights=[1, 0.353553391, 1])
            Line((0, FILLET2_SIZE), (0, 0))
            Line((0, 0), (FILLET2_SIZE, 0))
        make_face()
    extrude(amount=58, mode=Mode.SUBTRACT)

    # Sketch6 → Cut-Extrude5 (cut)
    with BuildSketch(Plane(origin=(0, -8.03519833, 0), x_dir=(1, 0, 0), z_dir=(0, 1, 0))):
        with Locations(Location((9.92851316, -12.5, 0), (0, 0, 270))):
            Circle(SKETCH6_R)
    extrude(amount=-CUT_EXTRUDE5_DEPTH, mode=Mode.SUBTRACT)

    # Sketch7 → Cut-Extrude6 (cut)
    with BuildSketch(Plane(origin=(0, -10.03519833, 0), x_dir=(-1, 0, 0), z_dir=(0, -1, 0))):
        Polygon((-35.683884991, -9.237677709), (-38.131453055, -11.52301005), (-37.376081224, -14.785332341), (-34.173141329, -15.762322291), (-31.725573265, -13.47698995), (-32.480945096, -10.214667659), align=None)
        Polygon((12.105656047, -10.945271393), (12.242136974, -14.291120506), (15.207967766, -15.845849113), (18.037317633, -14.054728607), (17.900836706, -10.708879494), (14.935005914, -9.154150887), align=None)
    extrude(amount=-CUT_EXTRUDE6_DEPTH, mode=Mode.SUBTRACT)

    # Sketch8 → Cut-Extrude7 (cut)
    with BuildSketch(Plane(origin=(0, -2.03519833, 0), x_dir=(1, 0, 0), z_dir=(0, 1, 0))):
        with Locations(Location((-15.07148684, -12.5, 0), (0, 0, 270))):
            Circle(SKETCH8_R)
        with Locations(Location((34.92851316, -12.5, 0), (0, 0, 270))):
            Circle(SKETCH8_R)
    extrude(amount=-CUT_EXTRUDE7_DEPTH, mode=Mode.SUBTRACT)

    # Sketch10 → Cut-Extrude8 (cut)
    with BuildSketch(Plane.ZY.offset(20.07148684)):
        with Locations((25, -8.03519833)):
            Rectangle(SKETCH10_W, SKETCH10_H)
    extrude(amount=-CUT_EXTRUDE8_DEPTH, mode=Mode.SUBTRACT)


solid = part.part
